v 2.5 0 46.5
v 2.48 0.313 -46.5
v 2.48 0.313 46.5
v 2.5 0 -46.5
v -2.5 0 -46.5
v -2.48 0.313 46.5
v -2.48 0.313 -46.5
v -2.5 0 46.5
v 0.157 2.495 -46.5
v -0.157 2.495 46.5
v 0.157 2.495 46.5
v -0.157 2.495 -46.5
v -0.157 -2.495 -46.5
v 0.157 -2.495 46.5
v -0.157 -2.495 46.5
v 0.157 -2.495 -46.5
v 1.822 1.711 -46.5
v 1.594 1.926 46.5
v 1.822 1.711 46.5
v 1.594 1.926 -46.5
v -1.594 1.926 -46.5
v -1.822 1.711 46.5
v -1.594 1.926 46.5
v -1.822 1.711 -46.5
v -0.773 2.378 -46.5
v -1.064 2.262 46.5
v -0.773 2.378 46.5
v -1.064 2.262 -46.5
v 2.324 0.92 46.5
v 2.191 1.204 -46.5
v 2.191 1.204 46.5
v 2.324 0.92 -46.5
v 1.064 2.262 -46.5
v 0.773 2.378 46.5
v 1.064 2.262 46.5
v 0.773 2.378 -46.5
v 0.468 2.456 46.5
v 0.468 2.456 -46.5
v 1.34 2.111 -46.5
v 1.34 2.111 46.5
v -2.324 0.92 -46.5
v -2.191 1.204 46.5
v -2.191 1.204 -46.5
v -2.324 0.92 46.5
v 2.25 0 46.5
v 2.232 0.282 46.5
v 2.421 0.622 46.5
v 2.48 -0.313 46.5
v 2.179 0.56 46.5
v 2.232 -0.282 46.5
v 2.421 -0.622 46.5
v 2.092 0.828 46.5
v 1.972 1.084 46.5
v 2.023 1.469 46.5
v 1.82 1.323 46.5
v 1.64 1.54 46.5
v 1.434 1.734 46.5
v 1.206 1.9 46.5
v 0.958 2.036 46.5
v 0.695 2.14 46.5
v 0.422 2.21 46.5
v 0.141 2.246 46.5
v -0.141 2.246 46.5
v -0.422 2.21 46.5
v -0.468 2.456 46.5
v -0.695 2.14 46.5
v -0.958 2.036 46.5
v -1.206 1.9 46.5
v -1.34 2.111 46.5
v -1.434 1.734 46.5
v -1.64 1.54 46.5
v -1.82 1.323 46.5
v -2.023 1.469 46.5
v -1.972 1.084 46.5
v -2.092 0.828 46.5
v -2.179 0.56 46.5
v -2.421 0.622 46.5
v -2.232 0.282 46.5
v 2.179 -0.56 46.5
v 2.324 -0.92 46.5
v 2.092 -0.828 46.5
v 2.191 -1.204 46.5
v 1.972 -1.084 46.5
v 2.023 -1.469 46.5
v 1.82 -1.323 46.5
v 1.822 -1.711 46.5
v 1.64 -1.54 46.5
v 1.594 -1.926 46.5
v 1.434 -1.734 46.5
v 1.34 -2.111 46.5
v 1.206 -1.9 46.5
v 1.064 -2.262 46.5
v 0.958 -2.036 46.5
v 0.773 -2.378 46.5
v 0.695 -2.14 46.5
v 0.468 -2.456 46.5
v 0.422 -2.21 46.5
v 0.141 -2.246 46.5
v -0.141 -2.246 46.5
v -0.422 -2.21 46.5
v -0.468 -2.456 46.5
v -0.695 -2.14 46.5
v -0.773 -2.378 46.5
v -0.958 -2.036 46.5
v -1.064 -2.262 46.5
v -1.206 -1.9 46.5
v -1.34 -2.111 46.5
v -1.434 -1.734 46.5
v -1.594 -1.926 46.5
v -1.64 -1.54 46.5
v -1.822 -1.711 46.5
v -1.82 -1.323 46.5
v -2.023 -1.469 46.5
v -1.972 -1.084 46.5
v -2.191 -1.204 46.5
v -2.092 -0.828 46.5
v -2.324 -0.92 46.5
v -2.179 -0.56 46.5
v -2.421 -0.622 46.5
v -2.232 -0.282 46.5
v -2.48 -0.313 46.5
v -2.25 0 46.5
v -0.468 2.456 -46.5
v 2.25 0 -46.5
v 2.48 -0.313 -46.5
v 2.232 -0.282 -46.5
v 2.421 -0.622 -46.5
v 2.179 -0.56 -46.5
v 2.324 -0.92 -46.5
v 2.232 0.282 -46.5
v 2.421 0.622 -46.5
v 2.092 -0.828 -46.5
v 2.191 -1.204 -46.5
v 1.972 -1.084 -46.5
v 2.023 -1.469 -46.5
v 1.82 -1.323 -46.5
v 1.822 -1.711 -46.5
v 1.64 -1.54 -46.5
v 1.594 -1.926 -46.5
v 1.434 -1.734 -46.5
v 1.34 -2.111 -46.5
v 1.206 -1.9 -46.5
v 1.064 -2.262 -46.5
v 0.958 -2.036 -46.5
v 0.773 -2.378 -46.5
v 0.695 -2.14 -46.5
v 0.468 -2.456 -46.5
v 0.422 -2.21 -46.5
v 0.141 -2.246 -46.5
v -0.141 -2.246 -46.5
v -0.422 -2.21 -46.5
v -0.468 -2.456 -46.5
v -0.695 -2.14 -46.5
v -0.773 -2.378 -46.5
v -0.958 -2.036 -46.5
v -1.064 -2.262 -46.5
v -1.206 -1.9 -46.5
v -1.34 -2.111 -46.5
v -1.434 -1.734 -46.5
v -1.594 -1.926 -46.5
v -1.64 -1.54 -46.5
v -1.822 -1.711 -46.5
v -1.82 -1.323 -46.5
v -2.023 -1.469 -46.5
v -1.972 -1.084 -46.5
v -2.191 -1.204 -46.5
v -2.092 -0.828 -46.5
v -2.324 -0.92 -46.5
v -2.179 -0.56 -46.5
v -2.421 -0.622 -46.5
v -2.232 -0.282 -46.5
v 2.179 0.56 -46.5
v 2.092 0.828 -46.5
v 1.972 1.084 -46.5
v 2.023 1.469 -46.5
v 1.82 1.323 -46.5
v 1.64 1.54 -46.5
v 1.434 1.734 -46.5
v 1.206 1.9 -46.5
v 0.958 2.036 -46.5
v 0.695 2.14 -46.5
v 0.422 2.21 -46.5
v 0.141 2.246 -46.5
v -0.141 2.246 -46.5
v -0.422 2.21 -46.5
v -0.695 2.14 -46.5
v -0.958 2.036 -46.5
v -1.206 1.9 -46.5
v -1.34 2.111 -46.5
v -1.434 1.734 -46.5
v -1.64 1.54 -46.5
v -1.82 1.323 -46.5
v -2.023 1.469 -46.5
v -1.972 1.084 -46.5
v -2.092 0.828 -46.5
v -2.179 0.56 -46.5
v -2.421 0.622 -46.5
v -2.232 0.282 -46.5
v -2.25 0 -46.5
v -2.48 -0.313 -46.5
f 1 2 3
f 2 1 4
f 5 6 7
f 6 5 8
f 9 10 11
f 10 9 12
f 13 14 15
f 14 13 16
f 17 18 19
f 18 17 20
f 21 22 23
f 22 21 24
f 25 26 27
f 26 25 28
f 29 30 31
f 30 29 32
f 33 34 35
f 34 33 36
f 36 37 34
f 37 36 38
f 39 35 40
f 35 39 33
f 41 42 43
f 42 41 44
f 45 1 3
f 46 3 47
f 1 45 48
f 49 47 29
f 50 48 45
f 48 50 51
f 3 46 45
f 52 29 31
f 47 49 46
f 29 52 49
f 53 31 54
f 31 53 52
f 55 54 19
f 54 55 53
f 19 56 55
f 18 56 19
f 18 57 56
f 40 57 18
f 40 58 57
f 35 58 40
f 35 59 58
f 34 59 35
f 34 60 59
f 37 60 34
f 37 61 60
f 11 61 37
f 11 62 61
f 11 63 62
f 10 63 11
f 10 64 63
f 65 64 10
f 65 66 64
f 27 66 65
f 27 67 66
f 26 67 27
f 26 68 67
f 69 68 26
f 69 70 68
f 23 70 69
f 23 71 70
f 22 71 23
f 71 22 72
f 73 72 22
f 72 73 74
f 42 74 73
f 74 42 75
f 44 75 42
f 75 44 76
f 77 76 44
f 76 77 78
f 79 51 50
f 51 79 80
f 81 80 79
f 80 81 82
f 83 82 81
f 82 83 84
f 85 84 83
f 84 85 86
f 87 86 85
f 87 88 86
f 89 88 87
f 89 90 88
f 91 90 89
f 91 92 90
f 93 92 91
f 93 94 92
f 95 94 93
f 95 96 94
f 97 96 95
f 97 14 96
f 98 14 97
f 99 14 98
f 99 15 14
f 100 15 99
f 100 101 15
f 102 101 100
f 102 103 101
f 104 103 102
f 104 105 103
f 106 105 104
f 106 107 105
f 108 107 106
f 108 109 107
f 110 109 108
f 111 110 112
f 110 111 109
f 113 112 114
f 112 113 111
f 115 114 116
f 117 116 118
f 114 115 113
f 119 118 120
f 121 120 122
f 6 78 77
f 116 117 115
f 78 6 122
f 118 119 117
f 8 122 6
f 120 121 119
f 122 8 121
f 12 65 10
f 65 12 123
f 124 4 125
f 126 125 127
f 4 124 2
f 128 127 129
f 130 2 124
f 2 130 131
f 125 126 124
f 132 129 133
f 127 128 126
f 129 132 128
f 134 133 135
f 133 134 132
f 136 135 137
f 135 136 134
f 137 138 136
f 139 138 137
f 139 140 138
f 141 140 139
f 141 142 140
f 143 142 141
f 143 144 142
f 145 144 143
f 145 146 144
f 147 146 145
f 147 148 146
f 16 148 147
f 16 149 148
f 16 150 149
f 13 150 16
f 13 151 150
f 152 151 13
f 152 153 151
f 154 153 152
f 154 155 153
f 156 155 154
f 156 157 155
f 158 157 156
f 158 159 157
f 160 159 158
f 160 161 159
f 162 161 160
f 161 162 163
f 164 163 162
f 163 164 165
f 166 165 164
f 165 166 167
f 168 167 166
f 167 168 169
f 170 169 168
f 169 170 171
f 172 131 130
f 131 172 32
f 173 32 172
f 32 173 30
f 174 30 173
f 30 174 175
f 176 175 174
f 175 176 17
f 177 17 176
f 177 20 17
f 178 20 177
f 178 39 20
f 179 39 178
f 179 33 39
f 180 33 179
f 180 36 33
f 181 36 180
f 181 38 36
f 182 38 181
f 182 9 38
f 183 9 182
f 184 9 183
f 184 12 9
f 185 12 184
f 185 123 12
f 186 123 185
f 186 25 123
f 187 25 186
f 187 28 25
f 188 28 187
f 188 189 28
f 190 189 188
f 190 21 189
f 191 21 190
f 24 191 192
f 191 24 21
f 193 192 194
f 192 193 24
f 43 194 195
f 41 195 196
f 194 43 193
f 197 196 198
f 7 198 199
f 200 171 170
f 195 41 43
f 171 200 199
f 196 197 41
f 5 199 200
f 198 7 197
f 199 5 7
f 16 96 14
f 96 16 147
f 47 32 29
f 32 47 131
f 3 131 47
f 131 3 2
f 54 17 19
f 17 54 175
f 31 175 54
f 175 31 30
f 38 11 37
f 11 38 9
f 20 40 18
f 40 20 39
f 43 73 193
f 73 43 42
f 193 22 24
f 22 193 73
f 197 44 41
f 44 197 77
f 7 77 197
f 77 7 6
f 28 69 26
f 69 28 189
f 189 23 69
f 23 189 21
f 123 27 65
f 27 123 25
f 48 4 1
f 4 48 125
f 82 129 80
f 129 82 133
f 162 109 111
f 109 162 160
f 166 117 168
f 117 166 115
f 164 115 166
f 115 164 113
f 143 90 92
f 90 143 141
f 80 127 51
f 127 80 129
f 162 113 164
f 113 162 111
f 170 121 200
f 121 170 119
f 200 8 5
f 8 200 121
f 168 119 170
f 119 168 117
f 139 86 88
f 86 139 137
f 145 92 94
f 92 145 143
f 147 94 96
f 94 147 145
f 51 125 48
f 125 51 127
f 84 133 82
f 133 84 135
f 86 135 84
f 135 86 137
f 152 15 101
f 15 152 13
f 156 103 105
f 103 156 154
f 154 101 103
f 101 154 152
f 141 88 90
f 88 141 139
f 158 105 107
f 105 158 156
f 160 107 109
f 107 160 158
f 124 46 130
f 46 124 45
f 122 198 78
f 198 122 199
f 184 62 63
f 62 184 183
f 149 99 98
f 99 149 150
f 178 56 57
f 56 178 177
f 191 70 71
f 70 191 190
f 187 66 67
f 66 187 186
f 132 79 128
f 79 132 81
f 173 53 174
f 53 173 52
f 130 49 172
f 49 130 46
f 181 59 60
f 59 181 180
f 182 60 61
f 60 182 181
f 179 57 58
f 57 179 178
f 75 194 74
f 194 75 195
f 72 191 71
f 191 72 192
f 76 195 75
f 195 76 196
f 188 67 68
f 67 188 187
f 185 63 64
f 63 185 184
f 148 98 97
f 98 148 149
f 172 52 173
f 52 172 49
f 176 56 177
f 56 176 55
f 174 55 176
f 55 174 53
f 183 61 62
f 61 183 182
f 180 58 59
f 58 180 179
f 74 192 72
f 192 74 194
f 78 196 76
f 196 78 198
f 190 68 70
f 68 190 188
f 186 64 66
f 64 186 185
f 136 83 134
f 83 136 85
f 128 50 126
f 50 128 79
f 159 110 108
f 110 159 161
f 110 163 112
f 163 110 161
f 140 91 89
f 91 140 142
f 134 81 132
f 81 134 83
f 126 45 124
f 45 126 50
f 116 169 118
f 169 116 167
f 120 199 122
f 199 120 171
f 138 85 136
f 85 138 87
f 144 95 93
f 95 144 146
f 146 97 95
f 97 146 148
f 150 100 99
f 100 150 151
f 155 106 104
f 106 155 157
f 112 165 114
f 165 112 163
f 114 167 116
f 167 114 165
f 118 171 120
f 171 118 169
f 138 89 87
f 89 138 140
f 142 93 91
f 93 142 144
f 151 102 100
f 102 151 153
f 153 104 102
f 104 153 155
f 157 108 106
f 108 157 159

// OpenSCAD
$fn = 50;


difference() {
	union() {
		translate(v = [0, 0, -46.5000000000]) {
			cylinder(h = 93, r = 2.5000000000);
		}
	}
	union() {
		translate(v = [0, 0, -100.0000000000]) {
			cylinder(h = 200, r = 2.2500000000);
		}
	}
}
